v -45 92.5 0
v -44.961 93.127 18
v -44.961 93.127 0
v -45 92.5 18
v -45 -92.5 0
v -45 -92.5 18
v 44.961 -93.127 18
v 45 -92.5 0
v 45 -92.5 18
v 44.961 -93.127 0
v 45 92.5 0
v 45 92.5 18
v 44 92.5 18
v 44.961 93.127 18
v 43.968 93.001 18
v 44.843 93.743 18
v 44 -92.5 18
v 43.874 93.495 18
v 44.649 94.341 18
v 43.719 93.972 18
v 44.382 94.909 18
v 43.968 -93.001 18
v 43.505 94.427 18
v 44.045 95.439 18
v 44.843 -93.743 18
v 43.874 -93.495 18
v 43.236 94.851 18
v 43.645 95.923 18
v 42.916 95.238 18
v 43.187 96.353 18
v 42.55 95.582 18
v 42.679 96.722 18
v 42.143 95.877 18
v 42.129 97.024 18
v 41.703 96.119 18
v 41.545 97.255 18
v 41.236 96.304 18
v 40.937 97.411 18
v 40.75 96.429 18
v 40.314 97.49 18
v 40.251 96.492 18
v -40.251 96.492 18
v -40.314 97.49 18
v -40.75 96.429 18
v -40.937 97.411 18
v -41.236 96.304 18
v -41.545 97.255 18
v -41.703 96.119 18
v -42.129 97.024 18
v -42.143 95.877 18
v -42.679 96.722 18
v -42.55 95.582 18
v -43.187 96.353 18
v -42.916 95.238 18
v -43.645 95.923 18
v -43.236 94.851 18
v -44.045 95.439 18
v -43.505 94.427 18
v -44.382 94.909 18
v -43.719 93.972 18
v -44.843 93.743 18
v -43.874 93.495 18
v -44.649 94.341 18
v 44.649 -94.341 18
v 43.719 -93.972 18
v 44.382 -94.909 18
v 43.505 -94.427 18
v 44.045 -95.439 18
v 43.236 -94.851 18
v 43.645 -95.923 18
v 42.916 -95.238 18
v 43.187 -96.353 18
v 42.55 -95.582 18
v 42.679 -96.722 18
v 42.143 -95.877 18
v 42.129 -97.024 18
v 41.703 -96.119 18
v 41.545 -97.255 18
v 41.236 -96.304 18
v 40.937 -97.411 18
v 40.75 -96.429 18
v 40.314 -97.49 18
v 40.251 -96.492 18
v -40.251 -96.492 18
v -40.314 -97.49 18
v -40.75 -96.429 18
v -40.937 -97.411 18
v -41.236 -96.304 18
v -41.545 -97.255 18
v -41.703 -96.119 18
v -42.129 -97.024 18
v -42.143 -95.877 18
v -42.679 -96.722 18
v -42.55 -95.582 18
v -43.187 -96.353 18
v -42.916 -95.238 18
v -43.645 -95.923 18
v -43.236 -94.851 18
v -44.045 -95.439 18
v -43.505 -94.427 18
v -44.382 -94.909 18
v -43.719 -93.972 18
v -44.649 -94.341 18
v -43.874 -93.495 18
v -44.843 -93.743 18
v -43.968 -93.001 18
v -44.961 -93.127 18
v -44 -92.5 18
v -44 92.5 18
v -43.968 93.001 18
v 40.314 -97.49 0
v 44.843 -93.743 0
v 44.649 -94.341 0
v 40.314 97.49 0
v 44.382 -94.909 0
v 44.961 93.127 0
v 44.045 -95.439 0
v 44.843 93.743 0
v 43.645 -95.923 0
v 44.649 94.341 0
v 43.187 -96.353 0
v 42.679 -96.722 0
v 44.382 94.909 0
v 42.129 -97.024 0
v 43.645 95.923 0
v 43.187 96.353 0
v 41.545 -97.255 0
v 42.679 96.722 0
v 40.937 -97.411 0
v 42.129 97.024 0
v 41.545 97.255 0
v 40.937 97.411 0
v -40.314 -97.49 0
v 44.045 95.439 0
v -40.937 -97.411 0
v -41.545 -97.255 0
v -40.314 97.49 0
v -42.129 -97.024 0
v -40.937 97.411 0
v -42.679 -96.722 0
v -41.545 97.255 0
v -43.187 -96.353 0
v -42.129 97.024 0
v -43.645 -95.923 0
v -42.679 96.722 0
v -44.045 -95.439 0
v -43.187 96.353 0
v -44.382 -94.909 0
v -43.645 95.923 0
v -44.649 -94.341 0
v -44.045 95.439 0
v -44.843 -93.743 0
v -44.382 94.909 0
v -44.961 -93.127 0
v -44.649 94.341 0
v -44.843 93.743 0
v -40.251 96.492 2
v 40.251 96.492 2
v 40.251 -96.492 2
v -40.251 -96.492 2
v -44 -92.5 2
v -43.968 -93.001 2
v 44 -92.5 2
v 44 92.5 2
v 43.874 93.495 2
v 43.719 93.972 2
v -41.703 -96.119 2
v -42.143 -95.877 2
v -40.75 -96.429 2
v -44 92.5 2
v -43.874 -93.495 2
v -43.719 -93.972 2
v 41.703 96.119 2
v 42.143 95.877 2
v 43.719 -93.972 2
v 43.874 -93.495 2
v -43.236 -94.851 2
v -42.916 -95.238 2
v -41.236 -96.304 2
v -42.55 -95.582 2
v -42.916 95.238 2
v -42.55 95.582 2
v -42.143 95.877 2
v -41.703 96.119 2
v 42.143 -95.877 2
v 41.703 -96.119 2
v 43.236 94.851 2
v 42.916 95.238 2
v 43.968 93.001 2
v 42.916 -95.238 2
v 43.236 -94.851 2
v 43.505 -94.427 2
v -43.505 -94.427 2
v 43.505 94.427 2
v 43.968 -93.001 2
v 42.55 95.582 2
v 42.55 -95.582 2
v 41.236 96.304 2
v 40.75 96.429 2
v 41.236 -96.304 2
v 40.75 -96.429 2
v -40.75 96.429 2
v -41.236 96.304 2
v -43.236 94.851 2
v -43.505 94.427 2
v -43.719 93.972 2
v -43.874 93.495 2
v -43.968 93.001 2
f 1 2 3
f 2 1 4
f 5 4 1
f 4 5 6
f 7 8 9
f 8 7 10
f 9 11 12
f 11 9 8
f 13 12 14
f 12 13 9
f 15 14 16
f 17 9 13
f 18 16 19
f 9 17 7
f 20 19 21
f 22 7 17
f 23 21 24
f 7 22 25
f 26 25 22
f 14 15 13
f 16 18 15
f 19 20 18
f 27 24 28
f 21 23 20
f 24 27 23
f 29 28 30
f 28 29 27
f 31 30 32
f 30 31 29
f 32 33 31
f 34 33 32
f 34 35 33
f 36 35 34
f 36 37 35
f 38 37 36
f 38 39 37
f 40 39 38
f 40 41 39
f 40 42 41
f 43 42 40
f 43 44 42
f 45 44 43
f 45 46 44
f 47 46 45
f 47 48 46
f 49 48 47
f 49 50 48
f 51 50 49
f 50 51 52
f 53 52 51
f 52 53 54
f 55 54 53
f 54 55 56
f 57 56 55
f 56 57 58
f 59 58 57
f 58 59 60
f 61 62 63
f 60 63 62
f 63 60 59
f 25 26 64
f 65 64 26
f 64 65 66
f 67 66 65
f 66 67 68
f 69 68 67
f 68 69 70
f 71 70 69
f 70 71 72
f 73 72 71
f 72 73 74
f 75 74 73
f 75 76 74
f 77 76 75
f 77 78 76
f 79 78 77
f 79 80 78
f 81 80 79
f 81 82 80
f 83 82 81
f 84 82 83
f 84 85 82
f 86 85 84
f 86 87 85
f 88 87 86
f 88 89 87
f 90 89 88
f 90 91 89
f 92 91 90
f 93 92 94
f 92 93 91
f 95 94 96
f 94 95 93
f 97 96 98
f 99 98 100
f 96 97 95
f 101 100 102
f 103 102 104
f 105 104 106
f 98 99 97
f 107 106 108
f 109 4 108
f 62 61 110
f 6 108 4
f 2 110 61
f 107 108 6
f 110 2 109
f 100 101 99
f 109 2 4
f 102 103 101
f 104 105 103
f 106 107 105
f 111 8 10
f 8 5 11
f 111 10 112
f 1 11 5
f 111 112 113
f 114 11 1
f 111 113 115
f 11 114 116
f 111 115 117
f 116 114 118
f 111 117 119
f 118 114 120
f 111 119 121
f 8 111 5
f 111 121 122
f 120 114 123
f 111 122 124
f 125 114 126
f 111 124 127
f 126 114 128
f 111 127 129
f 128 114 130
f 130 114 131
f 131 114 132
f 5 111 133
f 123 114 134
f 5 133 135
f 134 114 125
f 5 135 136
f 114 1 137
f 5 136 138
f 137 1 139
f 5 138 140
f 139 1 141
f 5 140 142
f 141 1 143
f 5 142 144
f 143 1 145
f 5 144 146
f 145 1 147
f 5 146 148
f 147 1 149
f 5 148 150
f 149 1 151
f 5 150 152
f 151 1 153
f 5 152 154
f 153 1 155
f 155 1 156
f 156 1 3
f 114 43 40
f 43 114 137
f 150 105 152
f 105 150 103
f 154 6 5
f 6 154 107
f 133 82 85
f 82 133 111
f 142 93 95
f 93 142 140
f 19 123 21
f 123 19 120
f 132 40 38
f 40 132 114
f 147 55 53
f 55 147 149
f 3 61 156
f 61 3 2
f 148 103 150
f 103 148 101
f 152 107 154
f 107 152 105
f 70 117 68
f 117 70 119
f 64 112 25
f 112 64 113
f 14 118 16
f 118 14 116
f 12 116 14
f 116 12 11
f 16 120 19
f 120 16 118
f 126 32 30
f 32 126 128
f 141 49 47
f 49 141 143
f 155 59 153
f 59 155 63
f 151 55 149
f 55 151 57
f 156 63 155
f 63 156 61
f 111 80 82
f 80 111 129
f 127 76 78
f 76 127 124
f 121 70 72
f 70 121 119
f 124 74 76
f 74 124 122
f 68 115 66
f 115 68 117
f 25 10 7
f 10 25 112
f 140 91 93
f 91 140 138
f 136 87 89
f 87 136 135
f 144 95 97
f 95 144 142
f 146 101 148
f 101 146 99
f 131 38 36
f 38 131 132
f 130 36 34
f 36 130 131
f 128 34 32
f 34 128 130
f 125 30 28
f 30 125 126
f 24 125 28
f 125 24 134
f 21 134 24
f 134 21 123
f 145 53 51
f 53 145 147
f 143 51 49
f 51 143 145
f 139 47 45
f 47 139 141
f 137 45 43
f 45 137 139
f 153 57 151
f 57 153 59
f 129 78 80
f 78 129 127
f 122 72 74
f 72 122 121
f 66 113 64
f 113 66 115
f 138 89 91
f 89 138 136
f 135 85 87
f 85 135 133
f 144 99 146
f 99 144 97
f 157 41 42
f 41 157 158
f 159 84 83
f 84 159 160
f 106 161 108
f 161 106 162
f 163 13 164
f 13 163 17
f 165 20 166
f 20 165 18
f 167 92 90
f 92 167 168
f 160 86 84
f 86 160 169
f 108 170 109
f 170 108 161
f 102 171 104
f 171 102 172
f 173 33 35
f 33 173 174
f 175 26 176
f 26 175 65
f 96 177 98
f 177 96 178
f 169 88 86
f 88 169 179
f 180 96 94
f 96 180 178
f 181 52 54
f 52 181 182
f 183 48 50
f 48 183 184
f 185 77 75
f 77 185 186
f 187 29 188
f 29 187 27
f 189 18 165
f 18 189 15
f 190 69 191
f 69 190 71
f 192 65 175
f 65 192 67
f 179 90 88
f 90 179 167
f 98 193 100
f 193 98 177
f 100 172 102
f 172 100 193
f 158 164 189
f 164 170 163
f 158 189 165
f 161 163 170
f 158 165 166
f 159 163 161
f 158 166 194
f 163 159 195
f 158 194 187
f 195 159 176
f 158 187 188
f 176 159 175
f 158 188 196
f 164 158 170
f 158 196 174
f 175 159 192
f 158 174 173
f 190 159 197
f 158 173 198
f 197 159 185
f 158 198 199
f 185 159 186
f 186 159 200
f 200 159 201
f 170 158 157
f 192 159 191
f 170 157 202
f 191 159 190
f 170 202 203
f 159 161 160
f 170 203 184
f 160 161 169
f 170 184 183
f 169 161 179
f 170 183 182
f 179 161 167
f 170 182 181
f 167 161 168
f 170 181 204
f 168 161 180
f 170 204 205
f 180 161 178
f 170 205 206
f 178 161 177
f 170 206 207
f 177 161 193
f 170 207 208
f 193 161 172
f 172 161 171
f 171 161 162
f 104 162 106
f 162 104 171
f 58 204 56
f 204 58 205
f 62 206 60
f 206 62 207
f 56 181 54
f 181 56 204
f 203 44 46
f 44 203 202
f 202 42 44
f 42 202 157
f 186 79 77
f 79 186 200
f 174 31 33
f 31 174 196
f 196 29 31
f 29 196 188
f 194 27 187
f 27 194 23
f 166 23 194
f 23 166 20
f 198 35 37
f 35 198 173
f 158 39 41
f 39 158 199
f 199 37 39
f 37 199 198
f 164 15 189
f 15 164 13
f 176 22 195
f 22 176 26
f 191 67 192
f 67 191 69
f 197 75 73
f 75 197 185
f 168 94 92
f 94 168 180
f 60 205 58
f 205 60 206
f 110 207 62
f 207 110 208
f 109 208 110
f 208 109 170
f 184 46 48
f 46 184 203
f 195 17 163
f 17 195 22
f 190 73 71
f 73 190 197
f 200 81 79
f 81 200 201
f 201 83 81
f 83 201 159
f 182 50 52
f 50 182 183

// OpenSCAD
$fn = 50;


difference() {
	union() {
		hull() {
			translate(v = [-40.0000000000, 92.5000000000, 0]) {
				cylinder(h = 18, r = 5);
			}
			translate(v = [40.0000000000, 92.5000000000, 0]) {
				cylinder(h = 18, r = 5);
			}
			translate(v = [-40.0000000000, -92.5000000000, 0]) {
				cylinder(h = 18, r = 5);
			}
			translate(v = [40.0000000000, -92.5000000000, 0]) {
				cylinder(h = 18, r = 5);
			}
		}
	}
	union() {
		translate(v = [0, 0, 2]) {
			hull() {
				translate(v = [-40.0000000000, 92.5000000000, 0]) {
					cylinder(h = 16, r = 4);
				}
				translate(v = [40.0000000000, 92.5000000000, 0]) {
					cylinder(h = 16, r = 4);
				}
				translate(v = [-40.0000000000, -92.5000000000, 0]) {
					cylinder(h = 16, r = 4);
				}
				translate(v = [40.0000000000, -92.5000000000, 0]) {
					cylinder(h = 16, r = 4);
				}
			}
		}
	}
}
